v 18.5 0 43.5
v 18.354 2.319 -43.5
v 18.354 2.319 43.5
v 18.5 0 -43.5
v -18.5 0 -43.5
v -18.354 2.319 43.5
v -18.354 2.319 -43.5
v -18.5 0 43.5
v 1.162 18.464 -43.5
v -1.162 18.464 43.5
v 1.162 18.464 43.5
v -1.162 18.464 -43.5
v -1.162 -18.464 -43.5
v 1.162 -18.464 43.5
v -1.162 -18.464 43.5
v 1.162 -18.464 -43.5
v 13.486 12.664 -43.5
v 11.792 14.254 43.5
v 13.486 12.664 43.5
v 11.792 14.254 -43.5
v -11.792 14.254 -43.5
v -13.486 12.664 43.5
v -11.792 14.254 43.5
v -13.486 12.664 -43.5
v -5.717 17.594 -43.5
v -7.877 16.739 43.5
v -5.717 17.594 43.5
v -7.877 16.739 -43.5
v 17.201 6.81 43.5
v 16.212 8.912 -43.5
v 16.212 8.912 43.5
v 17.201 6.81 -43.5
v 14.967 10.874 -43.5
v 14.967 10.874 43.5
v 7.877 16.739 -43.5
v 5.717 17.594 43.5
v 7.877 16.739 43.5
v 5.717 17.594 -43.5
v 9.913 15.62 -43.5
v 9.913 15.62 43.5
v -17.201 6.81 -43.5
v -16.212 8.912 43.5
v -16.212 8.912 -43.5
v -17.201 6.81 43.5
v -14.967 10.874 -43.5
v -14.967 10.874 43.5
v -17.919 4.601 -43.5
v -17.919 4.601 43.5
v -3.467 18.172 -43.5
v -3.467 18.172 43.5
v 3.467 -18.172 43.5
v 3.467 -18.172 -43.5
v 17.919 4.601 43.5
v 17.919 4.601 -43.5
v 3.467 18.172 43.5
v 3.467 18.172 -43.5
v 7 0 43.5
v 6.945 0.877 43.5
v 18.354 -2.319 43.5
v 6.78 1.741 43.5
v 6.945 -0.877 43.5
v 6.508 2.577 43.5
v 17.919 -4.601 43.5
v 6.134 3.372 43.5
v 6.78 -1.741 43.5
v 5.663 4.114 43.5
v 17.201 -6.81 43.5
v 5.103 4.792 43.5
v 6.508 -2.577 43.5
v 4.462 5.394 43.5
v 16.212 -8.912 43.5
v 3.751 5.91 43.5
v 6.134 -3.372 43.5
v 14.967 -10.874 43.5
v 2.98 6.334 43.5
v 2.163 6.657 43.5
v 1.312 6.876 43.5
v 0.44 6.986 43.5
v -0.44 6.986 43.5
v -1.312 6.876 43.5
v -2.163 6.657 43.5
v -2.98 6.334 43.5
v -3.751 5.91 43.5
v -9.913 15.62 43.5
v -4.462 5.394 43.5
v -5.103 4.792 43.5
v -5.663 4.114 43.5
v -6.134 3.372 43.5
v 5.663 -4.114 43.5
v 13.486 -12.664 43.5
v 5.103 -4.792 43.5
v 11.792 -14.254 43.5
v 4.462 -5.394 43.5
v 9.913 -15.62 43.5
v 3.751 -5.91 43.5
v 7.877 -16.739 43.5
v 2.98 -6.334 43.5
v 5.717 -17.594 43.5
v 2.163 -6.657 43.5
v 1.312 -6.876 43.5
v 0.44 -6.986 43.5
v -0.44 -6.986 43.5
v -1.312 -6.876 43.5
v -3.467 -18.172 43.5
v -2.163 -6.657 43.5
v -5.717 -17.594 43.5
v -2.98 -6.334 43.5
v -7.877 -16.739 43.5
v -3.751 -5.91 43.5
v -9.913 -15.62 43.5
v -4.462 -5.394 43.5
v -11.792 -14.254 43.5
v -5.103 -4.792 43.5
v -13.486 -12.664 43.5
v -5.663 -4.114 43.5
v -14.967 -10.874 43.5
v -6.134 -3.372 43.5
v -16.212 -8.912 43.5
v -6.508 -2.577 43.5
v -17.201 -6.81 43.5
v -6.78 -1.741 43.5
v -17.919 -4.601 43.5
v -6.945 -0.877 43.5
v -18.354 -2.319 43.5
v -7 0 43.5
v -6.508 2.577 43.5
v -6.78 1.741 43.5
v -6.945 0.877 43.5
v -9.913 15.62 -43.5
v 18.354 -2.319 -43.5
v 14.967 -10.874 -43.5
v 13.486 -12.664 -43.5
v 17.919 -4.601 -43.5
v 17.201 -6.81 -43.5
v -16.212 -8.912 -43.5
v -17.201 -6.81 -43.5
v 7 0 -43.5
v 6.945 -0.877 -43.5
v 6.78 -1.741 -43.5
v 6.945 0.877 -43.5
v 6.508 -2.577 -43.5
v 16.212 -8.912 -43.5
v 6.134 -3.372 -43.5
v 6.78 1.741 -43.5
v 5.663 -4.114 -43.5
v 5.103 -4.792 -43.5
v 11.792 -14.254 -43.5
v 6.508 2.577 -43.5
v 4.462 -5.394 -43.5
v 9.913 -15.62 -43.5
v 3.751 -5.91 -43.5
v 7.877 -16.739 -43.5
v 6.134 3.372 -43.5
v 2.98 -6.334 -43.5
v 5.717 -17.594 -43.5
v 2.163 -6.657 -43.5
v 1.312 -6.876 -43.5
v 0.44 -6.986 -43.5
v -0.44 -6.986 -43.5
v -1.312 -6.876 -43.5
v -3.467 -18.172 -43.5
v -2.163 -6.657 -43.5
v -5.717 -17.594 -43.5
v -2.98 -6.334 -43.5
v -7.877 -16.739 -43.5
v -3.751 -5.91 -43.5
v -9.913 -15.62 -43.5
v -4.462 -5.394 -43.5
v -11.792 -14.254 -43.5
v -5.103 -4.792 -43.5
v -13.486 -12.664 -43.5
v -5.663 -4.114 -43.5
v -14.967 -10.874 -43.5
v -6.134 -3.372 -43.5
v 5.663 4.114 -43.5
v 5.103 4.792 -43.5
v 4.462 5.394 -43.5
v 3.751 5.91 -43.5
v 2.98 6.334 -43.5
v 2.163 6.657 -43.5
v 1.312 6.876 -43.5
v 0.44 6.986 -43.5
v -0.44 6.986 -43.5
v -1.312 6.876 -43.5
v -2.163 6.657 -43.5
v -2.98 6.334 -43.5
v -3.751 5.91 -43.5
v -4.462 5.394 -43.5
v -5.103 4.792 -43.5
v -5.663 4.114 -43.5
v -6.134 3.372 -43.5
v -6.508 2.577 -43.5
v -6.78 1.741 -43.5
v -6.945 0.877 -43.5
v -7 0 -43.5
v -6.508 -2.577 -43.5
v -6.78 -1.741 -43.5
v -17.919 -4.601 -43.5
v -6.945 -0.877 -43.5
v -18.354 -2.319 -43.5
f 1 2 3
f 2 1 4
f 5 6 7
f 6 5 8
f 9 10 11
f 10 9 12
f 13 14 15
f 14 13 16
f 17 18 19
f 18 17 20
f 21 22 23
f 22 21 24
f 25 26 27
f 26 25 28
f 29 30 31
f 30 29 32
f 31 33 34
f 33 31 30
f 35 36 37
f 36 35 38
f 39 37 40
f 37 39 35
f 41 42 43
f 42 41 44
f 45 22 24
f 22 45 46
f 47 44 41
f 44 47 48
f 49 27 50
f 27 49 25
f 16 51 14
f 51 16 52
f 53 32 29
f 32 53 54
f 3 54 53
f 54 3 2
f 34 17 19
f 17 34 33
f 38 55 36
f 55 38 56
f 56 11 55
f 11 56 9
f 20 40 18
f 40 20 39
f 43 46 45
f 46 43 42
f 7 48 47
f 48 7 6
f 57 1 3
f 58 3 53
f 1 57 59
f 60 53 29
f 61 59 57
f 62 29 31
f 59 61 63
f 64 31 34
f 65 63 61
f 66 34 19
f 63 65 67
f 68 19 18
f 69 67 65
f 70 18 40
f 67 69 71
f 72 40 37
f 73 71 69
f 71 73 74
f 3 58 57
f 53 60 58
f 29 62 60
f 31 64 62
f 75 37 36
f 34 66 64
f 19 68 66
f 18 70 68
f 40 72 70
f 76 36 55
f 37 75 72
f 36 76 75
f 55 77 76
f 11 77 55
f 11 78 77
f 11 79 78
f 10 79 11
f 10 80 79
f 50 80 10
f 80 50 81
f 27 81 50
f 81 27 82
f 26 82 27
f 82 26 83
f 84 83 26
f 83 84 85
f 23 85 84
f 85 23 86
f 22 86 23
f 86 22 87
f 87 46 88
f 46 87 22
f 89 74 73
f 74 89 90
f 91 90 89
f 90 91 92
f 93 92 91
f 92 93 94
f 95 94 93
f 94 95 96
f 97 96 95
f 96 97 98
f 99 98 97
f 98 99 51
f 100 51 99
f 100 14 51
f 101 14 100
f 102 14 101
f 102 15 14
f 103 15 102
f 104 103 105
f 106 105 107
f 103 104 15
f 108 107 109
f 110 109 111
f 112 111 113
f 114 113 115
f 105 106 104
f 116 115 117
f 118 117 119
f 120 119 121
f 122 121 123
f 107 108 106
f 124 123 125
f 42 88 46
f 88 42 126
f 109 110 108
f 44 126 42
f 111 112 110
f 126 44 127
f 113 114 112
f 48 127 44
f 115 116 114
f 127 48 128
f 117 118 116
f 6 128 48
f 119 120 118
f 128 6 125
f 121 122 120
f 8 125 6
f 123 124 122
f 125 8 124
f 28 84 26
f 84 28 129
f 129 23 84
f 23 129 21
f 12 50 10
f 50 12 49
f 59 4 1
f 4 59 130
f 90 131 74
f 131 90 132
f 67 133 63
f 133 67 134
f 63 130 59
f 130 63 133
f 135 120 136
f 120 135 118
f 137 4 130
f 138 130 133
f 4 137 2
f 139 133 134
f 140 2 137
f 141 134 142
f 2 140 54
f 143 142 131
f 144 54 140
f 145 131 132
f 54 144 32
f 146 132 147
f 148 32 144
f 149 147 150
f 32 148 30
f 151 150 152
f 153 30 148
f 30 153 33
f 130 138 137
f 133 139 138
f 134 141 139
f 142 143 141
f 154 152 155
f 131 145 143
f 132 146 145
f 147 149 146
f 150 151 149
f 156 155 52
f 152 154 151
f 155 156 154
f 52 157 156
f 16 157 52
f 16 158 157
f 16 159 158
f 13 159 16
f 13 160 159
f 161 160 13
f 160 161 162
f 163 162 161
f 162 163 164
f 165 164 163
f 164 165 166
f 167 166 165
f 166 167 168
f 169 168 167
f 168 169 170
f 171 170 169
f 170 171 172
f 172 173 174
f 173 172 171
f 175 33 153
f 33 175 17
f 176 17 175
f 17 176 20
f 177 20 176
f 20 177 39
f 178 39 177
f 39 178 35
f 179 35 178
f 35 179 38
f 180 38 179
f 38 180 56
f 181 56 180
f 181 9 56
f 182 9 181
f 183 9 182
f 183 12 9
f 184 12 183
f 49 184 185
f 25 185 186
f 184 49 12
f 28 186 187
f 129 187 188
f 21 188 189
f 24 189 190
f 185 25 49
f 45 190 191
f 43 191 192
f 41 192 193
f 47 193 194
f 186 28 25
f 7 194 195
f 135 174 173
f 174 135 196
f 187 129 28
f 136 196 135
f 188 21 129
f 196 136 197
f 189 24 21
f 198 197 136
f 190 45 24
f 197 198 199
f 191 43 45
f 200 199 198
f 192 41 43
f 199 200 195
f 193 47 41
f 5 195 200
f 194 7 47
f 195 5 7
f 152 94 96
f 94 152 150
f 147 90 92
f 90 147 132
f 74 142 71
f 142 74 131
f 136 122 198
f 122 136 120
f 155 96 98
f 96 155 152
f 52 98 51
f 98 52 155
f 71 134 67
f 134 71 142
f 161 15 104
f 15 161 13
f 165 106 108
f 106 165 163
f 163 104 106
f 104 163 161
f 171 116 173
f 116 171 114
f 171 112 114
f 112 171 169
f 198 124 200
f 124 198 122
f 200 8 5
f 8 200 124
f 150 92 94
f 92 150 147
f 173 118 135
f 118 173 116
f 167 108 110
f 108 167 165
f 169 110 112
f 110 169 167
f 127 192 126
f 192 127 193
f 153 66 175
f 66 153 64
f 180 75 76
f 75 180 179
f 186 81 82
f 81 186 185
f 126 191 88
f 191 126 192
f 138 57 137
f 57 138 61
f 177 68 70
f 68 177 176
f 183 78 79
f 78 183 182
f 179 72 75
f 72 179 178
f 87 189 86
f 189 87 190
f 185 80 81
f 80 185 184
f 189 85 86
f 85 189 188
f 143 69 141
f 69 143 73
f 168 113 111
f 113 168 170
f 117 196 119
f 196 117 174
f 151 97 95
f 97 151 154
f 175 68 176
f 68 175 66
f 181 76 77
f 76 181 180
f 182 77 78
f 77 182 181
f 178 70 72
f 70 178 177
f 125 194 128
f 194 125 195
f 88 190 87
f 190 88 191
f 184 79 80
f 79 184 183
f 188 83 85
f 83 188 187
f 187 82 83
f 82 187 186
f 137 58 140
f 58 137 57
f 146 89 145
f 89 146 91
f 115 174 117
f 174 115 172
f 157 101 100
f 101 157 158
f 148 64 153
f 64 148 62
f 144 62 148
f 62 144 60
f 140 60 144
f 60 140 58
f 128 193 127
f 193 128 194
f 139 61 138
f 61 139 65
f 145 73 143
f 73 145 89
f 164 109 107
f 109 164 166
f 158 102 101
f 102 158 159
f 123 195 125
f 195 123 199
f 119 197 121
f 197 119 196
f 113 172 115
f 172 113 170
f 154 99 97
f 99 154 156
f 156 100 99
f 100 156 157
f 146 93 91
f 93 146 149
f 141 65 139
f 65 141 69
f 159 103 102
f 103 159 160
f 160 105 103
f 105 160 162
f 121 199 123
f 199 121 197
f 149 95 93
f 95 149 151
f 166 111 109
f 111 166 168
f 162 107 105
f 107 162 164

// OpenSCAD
$fn = 50;


difference() {
	union() {
		translate(v = [0, 0, -43.5000000000]) {
			cylinder(h = 87, r = 18.5000000000);
		}
	}
	union() {
		translate(v = [0, 0, -100.0000000000]) {
			cylinder(h = 200, r = 7);
		}
	}
}
